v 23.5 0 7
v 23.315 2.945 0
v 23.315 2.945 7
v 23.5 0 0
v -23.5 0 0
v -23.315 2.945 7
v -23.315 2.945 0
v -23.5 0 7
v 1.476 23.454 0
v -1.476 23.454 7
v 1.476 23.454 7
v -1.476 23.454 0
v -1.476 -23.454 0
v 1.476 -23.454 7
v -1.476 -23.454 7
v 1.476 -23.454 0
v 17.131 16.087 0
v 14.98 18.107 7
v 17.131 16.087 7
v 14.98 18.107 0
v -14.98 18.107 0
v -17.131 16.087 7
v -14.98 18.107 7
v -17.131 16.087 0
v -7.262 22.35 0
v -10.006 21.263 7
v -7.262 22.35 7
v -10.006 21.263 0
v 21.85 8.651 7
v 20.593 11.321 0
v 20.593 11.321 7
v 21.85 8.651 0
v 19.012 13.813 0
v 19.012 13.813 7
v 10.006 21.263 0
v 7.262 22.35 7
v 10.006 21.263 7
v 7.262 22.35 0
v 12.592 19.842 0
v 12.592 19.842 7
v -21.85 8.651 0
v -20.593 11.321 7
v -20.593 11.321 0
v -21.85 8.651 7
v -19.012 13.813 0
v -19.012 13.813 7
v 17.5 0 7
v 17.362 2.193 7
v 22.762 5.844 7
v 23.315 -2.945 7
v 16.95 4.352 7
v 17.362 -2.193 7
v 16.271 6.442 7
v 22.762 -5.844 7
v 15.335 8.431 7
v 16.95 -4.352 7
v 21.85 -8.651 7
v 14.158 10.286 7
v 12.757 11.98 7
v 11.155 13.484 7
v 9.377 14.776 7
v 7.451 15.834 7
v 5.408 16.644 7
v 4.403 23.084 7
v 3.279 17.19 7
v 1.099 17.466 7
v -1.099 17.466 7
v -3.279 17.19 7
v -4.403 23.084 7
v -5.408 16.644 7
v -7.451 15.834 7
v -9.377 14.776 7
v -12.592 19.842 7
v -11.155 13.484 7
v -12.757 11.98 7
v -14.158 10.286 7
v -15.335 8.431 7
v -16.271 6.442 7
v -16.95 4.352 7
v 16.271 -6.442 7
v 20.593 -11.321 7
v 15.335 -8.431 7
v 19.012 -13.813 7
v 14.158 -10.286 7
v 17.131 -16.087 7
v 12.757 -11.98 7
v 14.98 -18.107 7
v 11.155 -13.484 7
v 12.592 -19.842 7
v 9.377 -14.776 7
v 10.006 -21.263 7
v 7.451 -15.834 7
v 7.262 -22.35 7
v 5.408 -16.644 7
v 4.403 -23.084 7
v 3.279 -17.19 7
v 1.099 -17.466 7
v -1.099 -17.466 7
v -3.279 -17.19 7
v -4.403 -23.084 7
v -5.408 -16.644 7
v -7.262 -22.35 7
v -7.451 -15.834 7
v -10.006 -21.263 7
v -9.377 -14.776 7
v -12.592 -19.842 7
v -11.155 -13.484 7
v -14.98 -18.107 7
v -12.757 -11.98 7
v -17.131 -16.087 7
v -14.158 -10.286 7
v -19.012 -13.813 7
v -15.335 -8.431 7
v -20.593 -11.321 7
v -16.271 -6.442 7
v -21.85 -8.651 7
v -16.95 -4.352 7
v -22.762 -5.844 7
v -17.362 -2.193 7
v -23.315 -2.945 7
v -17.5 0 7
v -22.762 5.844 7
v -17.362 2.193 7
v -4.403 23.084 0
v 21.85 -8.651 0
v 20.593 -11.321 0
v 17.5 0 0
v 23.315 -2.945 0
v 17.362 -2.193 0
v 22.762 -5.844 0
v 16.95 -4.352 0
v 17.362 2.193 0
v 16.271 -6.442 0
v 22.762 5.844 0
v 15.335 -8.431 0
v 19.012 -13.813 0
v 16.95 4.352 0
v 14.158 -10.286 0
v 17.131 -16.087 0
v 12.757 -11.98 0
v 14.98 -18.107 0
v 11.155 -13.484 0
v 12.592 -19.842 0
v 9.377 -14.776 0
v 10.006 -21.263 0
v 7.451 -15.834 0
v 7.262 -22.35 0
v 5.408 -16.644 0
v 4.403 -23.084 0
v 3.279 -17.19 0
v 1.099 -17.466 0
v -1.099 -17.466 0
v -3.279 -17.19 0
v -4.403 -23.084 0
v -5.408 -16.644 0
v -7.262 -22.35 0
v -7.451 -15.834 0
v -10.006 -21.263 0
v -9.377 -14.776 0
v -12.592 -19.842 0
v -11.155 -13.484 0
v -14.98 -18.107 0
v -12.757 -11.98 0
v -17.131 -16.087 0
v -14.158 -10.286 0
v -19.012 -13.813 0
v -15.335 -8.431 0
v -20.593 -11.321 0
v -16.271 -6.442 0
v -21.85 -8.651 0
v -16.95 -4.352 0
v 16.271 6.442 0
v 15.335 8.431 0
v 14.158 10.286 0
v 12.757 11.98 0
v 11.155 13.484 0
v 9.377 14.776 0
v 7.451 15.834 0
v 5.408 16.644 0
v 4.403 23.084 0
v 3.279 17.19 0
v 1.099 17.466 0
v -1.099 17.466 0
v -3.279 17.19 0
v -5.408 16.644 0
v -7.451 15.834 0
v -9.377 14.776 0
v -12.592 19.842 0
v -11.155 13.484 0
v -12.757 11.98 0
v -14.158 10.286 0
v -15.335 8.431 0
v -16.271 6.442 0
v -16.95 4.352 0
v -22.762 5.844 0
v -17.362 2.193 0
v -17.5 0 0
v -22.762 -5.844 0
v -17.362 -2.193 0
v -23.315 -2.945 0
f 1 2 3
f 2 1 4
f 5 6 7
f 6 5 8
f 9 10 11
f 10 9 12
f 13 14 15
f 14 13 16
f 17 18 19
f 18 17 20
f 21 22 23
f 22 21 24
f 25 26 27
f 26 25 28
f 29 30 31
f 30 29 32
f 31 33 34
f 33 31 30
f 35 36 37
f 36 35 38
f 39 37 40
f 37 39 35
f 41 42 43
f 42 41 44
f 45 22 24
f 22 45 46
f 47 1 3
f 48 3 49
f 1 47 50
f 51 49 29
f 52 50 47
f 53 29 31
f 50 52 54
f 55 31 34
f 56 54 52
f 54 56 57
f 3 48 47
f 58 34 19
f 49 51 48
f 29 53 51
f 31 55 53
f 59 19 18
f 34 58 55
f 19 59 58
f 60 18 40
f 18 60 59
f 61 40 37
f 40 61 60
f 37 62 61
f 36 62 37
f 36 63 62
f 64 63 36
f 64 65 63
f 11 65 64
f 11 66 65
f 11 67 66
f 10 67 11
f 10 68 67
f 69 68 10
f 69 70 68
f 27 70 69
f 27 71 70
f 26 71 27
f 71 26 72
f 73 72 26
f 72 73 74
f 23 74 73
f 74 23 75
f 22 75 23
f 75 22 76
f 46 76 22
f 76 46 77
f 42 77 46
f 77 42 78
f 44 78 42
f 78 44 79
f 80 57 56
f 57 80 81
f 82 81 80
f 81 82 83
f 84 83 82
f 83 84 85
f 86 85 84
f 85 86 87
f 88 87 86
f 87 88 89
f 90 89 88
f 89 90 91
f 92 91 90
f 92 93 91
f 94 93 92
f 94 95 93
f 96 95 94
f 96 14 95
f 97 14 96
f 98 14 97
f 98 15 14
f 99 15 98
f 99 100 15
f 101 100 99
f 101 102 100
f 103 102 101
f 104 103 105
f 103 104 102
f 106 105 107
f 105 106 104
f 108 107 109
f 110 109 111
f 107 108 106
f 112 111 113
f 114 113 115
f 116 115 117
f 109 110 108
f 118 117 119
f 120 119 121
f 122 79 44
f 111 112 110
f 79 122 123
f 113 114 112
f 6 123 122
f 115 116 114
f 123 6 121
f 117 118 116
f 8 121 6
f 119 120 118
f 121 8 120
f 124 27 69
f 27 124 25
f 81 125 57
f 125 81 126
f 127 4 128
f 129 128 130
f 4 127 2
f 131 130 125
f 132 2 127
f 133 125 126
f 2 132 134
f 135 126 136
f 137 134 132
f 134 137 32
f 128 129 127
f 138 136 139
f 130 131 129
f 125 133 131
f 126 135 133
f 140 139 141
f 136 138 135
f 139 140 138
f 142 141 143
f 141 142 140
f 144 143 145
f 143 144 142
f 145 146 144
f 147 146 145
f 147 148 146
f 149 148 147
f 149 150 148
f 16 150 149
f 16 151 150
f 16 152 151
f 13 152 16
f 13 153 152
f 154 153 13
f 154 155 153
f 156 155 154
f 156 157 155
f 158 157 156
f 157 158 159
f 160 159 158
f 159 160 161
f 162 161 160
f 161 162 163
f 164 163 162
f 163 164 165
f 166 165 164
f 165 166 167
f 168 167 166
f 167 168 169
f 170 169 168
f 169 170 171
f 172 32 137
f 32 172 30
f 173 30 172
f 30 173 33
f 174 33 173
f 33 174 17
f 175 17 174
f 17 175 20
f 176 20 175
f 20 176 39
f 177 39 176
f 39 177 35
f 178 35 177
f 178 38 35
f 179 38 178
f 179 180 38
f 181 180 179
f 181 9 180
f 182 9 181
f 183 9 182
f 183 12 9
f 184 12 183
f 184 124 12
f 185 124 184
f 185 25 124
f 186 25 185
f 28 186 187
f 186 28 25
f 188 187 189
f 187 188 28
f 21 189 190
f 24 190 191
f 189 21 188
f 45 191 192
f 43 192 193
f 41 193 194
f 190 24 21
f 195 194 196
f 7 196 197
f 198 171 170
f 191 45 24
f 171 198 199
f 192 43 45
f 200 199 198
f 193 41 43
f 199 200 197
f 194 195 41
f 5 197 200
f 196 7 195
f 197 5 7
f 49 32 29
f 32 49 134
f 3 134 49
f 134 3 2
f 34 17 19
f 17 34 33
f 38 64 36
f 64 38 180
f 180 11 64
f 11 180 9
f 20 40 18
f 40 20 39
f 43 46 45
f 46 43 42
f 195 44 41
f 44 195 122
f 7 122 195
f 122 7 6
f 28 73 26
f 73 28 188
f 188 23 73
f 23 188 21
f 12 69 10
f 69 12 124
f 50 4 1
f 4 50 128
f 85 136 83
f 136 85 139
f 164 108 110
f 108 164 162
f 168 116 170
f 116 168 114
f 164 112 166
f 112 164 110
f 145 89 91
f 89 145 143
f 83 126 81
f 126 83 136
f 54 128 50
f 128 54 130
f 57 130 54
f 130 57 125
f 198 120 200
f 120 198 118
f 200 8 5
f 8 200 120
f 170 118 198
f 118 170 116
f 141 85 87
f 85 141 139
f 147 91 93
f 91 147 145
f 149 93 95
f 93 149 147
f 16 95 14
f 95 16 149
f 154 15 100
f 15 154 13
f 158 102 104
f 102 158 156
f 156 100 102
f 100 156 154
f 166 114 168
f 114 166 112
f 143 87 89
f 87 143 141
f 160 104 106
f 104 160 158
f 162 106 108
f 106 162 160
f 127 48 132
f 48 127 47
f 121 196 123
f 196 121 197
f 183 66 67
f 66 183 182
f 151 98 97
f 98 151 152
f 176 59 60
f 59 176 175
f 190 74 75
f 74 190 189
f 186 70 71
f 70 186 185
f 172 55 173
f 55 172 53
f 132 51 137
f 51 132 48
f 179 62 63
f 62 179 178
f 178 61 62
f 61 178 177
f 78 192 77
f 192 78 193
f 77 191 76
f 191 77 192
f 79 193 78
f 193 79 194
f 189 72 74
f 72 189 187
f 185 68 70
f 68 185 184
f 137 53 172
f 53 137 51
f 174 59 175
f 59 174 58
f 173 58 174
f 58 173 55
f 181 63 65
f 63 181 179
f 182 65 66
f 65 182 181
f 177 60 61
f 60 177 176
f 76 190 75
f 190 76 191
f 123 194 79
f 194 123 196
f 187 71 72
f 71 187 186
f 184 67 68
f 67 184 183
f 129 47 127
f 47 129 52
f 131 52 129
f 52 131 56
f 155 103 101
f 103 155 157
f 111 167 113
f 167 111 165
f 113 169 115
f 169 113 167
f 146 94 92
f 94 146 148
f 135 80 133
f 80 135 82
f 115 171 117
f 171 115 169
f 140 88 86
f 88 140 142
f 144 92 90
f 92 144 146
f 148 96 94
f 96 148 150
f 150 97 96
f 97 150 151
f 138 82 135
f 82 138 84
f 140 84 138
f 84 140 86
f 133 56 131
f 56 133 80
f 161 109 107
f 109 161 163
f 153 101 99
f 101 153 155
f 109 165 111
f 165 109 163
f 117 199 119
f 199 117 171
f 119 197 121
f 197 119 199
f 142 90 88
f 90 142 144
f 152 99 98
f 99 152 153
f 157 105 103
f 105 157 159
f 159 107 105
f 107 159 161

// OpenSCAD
$fn = 50;


difference() {
	union() {
		translate(v = [0, 0, 0]) {
			rotate(a = [0, 0, 0]) {
				cylinder(h = 7, r = 23.5000000000);
			}
		}
	}
	union() {
		translate(v = [0, 0, 0]) {
			rotate(a = [0, 0, 0]) {
				cylinder(h = 7, r = 17.5000000000);
			}
		}
	}
}
